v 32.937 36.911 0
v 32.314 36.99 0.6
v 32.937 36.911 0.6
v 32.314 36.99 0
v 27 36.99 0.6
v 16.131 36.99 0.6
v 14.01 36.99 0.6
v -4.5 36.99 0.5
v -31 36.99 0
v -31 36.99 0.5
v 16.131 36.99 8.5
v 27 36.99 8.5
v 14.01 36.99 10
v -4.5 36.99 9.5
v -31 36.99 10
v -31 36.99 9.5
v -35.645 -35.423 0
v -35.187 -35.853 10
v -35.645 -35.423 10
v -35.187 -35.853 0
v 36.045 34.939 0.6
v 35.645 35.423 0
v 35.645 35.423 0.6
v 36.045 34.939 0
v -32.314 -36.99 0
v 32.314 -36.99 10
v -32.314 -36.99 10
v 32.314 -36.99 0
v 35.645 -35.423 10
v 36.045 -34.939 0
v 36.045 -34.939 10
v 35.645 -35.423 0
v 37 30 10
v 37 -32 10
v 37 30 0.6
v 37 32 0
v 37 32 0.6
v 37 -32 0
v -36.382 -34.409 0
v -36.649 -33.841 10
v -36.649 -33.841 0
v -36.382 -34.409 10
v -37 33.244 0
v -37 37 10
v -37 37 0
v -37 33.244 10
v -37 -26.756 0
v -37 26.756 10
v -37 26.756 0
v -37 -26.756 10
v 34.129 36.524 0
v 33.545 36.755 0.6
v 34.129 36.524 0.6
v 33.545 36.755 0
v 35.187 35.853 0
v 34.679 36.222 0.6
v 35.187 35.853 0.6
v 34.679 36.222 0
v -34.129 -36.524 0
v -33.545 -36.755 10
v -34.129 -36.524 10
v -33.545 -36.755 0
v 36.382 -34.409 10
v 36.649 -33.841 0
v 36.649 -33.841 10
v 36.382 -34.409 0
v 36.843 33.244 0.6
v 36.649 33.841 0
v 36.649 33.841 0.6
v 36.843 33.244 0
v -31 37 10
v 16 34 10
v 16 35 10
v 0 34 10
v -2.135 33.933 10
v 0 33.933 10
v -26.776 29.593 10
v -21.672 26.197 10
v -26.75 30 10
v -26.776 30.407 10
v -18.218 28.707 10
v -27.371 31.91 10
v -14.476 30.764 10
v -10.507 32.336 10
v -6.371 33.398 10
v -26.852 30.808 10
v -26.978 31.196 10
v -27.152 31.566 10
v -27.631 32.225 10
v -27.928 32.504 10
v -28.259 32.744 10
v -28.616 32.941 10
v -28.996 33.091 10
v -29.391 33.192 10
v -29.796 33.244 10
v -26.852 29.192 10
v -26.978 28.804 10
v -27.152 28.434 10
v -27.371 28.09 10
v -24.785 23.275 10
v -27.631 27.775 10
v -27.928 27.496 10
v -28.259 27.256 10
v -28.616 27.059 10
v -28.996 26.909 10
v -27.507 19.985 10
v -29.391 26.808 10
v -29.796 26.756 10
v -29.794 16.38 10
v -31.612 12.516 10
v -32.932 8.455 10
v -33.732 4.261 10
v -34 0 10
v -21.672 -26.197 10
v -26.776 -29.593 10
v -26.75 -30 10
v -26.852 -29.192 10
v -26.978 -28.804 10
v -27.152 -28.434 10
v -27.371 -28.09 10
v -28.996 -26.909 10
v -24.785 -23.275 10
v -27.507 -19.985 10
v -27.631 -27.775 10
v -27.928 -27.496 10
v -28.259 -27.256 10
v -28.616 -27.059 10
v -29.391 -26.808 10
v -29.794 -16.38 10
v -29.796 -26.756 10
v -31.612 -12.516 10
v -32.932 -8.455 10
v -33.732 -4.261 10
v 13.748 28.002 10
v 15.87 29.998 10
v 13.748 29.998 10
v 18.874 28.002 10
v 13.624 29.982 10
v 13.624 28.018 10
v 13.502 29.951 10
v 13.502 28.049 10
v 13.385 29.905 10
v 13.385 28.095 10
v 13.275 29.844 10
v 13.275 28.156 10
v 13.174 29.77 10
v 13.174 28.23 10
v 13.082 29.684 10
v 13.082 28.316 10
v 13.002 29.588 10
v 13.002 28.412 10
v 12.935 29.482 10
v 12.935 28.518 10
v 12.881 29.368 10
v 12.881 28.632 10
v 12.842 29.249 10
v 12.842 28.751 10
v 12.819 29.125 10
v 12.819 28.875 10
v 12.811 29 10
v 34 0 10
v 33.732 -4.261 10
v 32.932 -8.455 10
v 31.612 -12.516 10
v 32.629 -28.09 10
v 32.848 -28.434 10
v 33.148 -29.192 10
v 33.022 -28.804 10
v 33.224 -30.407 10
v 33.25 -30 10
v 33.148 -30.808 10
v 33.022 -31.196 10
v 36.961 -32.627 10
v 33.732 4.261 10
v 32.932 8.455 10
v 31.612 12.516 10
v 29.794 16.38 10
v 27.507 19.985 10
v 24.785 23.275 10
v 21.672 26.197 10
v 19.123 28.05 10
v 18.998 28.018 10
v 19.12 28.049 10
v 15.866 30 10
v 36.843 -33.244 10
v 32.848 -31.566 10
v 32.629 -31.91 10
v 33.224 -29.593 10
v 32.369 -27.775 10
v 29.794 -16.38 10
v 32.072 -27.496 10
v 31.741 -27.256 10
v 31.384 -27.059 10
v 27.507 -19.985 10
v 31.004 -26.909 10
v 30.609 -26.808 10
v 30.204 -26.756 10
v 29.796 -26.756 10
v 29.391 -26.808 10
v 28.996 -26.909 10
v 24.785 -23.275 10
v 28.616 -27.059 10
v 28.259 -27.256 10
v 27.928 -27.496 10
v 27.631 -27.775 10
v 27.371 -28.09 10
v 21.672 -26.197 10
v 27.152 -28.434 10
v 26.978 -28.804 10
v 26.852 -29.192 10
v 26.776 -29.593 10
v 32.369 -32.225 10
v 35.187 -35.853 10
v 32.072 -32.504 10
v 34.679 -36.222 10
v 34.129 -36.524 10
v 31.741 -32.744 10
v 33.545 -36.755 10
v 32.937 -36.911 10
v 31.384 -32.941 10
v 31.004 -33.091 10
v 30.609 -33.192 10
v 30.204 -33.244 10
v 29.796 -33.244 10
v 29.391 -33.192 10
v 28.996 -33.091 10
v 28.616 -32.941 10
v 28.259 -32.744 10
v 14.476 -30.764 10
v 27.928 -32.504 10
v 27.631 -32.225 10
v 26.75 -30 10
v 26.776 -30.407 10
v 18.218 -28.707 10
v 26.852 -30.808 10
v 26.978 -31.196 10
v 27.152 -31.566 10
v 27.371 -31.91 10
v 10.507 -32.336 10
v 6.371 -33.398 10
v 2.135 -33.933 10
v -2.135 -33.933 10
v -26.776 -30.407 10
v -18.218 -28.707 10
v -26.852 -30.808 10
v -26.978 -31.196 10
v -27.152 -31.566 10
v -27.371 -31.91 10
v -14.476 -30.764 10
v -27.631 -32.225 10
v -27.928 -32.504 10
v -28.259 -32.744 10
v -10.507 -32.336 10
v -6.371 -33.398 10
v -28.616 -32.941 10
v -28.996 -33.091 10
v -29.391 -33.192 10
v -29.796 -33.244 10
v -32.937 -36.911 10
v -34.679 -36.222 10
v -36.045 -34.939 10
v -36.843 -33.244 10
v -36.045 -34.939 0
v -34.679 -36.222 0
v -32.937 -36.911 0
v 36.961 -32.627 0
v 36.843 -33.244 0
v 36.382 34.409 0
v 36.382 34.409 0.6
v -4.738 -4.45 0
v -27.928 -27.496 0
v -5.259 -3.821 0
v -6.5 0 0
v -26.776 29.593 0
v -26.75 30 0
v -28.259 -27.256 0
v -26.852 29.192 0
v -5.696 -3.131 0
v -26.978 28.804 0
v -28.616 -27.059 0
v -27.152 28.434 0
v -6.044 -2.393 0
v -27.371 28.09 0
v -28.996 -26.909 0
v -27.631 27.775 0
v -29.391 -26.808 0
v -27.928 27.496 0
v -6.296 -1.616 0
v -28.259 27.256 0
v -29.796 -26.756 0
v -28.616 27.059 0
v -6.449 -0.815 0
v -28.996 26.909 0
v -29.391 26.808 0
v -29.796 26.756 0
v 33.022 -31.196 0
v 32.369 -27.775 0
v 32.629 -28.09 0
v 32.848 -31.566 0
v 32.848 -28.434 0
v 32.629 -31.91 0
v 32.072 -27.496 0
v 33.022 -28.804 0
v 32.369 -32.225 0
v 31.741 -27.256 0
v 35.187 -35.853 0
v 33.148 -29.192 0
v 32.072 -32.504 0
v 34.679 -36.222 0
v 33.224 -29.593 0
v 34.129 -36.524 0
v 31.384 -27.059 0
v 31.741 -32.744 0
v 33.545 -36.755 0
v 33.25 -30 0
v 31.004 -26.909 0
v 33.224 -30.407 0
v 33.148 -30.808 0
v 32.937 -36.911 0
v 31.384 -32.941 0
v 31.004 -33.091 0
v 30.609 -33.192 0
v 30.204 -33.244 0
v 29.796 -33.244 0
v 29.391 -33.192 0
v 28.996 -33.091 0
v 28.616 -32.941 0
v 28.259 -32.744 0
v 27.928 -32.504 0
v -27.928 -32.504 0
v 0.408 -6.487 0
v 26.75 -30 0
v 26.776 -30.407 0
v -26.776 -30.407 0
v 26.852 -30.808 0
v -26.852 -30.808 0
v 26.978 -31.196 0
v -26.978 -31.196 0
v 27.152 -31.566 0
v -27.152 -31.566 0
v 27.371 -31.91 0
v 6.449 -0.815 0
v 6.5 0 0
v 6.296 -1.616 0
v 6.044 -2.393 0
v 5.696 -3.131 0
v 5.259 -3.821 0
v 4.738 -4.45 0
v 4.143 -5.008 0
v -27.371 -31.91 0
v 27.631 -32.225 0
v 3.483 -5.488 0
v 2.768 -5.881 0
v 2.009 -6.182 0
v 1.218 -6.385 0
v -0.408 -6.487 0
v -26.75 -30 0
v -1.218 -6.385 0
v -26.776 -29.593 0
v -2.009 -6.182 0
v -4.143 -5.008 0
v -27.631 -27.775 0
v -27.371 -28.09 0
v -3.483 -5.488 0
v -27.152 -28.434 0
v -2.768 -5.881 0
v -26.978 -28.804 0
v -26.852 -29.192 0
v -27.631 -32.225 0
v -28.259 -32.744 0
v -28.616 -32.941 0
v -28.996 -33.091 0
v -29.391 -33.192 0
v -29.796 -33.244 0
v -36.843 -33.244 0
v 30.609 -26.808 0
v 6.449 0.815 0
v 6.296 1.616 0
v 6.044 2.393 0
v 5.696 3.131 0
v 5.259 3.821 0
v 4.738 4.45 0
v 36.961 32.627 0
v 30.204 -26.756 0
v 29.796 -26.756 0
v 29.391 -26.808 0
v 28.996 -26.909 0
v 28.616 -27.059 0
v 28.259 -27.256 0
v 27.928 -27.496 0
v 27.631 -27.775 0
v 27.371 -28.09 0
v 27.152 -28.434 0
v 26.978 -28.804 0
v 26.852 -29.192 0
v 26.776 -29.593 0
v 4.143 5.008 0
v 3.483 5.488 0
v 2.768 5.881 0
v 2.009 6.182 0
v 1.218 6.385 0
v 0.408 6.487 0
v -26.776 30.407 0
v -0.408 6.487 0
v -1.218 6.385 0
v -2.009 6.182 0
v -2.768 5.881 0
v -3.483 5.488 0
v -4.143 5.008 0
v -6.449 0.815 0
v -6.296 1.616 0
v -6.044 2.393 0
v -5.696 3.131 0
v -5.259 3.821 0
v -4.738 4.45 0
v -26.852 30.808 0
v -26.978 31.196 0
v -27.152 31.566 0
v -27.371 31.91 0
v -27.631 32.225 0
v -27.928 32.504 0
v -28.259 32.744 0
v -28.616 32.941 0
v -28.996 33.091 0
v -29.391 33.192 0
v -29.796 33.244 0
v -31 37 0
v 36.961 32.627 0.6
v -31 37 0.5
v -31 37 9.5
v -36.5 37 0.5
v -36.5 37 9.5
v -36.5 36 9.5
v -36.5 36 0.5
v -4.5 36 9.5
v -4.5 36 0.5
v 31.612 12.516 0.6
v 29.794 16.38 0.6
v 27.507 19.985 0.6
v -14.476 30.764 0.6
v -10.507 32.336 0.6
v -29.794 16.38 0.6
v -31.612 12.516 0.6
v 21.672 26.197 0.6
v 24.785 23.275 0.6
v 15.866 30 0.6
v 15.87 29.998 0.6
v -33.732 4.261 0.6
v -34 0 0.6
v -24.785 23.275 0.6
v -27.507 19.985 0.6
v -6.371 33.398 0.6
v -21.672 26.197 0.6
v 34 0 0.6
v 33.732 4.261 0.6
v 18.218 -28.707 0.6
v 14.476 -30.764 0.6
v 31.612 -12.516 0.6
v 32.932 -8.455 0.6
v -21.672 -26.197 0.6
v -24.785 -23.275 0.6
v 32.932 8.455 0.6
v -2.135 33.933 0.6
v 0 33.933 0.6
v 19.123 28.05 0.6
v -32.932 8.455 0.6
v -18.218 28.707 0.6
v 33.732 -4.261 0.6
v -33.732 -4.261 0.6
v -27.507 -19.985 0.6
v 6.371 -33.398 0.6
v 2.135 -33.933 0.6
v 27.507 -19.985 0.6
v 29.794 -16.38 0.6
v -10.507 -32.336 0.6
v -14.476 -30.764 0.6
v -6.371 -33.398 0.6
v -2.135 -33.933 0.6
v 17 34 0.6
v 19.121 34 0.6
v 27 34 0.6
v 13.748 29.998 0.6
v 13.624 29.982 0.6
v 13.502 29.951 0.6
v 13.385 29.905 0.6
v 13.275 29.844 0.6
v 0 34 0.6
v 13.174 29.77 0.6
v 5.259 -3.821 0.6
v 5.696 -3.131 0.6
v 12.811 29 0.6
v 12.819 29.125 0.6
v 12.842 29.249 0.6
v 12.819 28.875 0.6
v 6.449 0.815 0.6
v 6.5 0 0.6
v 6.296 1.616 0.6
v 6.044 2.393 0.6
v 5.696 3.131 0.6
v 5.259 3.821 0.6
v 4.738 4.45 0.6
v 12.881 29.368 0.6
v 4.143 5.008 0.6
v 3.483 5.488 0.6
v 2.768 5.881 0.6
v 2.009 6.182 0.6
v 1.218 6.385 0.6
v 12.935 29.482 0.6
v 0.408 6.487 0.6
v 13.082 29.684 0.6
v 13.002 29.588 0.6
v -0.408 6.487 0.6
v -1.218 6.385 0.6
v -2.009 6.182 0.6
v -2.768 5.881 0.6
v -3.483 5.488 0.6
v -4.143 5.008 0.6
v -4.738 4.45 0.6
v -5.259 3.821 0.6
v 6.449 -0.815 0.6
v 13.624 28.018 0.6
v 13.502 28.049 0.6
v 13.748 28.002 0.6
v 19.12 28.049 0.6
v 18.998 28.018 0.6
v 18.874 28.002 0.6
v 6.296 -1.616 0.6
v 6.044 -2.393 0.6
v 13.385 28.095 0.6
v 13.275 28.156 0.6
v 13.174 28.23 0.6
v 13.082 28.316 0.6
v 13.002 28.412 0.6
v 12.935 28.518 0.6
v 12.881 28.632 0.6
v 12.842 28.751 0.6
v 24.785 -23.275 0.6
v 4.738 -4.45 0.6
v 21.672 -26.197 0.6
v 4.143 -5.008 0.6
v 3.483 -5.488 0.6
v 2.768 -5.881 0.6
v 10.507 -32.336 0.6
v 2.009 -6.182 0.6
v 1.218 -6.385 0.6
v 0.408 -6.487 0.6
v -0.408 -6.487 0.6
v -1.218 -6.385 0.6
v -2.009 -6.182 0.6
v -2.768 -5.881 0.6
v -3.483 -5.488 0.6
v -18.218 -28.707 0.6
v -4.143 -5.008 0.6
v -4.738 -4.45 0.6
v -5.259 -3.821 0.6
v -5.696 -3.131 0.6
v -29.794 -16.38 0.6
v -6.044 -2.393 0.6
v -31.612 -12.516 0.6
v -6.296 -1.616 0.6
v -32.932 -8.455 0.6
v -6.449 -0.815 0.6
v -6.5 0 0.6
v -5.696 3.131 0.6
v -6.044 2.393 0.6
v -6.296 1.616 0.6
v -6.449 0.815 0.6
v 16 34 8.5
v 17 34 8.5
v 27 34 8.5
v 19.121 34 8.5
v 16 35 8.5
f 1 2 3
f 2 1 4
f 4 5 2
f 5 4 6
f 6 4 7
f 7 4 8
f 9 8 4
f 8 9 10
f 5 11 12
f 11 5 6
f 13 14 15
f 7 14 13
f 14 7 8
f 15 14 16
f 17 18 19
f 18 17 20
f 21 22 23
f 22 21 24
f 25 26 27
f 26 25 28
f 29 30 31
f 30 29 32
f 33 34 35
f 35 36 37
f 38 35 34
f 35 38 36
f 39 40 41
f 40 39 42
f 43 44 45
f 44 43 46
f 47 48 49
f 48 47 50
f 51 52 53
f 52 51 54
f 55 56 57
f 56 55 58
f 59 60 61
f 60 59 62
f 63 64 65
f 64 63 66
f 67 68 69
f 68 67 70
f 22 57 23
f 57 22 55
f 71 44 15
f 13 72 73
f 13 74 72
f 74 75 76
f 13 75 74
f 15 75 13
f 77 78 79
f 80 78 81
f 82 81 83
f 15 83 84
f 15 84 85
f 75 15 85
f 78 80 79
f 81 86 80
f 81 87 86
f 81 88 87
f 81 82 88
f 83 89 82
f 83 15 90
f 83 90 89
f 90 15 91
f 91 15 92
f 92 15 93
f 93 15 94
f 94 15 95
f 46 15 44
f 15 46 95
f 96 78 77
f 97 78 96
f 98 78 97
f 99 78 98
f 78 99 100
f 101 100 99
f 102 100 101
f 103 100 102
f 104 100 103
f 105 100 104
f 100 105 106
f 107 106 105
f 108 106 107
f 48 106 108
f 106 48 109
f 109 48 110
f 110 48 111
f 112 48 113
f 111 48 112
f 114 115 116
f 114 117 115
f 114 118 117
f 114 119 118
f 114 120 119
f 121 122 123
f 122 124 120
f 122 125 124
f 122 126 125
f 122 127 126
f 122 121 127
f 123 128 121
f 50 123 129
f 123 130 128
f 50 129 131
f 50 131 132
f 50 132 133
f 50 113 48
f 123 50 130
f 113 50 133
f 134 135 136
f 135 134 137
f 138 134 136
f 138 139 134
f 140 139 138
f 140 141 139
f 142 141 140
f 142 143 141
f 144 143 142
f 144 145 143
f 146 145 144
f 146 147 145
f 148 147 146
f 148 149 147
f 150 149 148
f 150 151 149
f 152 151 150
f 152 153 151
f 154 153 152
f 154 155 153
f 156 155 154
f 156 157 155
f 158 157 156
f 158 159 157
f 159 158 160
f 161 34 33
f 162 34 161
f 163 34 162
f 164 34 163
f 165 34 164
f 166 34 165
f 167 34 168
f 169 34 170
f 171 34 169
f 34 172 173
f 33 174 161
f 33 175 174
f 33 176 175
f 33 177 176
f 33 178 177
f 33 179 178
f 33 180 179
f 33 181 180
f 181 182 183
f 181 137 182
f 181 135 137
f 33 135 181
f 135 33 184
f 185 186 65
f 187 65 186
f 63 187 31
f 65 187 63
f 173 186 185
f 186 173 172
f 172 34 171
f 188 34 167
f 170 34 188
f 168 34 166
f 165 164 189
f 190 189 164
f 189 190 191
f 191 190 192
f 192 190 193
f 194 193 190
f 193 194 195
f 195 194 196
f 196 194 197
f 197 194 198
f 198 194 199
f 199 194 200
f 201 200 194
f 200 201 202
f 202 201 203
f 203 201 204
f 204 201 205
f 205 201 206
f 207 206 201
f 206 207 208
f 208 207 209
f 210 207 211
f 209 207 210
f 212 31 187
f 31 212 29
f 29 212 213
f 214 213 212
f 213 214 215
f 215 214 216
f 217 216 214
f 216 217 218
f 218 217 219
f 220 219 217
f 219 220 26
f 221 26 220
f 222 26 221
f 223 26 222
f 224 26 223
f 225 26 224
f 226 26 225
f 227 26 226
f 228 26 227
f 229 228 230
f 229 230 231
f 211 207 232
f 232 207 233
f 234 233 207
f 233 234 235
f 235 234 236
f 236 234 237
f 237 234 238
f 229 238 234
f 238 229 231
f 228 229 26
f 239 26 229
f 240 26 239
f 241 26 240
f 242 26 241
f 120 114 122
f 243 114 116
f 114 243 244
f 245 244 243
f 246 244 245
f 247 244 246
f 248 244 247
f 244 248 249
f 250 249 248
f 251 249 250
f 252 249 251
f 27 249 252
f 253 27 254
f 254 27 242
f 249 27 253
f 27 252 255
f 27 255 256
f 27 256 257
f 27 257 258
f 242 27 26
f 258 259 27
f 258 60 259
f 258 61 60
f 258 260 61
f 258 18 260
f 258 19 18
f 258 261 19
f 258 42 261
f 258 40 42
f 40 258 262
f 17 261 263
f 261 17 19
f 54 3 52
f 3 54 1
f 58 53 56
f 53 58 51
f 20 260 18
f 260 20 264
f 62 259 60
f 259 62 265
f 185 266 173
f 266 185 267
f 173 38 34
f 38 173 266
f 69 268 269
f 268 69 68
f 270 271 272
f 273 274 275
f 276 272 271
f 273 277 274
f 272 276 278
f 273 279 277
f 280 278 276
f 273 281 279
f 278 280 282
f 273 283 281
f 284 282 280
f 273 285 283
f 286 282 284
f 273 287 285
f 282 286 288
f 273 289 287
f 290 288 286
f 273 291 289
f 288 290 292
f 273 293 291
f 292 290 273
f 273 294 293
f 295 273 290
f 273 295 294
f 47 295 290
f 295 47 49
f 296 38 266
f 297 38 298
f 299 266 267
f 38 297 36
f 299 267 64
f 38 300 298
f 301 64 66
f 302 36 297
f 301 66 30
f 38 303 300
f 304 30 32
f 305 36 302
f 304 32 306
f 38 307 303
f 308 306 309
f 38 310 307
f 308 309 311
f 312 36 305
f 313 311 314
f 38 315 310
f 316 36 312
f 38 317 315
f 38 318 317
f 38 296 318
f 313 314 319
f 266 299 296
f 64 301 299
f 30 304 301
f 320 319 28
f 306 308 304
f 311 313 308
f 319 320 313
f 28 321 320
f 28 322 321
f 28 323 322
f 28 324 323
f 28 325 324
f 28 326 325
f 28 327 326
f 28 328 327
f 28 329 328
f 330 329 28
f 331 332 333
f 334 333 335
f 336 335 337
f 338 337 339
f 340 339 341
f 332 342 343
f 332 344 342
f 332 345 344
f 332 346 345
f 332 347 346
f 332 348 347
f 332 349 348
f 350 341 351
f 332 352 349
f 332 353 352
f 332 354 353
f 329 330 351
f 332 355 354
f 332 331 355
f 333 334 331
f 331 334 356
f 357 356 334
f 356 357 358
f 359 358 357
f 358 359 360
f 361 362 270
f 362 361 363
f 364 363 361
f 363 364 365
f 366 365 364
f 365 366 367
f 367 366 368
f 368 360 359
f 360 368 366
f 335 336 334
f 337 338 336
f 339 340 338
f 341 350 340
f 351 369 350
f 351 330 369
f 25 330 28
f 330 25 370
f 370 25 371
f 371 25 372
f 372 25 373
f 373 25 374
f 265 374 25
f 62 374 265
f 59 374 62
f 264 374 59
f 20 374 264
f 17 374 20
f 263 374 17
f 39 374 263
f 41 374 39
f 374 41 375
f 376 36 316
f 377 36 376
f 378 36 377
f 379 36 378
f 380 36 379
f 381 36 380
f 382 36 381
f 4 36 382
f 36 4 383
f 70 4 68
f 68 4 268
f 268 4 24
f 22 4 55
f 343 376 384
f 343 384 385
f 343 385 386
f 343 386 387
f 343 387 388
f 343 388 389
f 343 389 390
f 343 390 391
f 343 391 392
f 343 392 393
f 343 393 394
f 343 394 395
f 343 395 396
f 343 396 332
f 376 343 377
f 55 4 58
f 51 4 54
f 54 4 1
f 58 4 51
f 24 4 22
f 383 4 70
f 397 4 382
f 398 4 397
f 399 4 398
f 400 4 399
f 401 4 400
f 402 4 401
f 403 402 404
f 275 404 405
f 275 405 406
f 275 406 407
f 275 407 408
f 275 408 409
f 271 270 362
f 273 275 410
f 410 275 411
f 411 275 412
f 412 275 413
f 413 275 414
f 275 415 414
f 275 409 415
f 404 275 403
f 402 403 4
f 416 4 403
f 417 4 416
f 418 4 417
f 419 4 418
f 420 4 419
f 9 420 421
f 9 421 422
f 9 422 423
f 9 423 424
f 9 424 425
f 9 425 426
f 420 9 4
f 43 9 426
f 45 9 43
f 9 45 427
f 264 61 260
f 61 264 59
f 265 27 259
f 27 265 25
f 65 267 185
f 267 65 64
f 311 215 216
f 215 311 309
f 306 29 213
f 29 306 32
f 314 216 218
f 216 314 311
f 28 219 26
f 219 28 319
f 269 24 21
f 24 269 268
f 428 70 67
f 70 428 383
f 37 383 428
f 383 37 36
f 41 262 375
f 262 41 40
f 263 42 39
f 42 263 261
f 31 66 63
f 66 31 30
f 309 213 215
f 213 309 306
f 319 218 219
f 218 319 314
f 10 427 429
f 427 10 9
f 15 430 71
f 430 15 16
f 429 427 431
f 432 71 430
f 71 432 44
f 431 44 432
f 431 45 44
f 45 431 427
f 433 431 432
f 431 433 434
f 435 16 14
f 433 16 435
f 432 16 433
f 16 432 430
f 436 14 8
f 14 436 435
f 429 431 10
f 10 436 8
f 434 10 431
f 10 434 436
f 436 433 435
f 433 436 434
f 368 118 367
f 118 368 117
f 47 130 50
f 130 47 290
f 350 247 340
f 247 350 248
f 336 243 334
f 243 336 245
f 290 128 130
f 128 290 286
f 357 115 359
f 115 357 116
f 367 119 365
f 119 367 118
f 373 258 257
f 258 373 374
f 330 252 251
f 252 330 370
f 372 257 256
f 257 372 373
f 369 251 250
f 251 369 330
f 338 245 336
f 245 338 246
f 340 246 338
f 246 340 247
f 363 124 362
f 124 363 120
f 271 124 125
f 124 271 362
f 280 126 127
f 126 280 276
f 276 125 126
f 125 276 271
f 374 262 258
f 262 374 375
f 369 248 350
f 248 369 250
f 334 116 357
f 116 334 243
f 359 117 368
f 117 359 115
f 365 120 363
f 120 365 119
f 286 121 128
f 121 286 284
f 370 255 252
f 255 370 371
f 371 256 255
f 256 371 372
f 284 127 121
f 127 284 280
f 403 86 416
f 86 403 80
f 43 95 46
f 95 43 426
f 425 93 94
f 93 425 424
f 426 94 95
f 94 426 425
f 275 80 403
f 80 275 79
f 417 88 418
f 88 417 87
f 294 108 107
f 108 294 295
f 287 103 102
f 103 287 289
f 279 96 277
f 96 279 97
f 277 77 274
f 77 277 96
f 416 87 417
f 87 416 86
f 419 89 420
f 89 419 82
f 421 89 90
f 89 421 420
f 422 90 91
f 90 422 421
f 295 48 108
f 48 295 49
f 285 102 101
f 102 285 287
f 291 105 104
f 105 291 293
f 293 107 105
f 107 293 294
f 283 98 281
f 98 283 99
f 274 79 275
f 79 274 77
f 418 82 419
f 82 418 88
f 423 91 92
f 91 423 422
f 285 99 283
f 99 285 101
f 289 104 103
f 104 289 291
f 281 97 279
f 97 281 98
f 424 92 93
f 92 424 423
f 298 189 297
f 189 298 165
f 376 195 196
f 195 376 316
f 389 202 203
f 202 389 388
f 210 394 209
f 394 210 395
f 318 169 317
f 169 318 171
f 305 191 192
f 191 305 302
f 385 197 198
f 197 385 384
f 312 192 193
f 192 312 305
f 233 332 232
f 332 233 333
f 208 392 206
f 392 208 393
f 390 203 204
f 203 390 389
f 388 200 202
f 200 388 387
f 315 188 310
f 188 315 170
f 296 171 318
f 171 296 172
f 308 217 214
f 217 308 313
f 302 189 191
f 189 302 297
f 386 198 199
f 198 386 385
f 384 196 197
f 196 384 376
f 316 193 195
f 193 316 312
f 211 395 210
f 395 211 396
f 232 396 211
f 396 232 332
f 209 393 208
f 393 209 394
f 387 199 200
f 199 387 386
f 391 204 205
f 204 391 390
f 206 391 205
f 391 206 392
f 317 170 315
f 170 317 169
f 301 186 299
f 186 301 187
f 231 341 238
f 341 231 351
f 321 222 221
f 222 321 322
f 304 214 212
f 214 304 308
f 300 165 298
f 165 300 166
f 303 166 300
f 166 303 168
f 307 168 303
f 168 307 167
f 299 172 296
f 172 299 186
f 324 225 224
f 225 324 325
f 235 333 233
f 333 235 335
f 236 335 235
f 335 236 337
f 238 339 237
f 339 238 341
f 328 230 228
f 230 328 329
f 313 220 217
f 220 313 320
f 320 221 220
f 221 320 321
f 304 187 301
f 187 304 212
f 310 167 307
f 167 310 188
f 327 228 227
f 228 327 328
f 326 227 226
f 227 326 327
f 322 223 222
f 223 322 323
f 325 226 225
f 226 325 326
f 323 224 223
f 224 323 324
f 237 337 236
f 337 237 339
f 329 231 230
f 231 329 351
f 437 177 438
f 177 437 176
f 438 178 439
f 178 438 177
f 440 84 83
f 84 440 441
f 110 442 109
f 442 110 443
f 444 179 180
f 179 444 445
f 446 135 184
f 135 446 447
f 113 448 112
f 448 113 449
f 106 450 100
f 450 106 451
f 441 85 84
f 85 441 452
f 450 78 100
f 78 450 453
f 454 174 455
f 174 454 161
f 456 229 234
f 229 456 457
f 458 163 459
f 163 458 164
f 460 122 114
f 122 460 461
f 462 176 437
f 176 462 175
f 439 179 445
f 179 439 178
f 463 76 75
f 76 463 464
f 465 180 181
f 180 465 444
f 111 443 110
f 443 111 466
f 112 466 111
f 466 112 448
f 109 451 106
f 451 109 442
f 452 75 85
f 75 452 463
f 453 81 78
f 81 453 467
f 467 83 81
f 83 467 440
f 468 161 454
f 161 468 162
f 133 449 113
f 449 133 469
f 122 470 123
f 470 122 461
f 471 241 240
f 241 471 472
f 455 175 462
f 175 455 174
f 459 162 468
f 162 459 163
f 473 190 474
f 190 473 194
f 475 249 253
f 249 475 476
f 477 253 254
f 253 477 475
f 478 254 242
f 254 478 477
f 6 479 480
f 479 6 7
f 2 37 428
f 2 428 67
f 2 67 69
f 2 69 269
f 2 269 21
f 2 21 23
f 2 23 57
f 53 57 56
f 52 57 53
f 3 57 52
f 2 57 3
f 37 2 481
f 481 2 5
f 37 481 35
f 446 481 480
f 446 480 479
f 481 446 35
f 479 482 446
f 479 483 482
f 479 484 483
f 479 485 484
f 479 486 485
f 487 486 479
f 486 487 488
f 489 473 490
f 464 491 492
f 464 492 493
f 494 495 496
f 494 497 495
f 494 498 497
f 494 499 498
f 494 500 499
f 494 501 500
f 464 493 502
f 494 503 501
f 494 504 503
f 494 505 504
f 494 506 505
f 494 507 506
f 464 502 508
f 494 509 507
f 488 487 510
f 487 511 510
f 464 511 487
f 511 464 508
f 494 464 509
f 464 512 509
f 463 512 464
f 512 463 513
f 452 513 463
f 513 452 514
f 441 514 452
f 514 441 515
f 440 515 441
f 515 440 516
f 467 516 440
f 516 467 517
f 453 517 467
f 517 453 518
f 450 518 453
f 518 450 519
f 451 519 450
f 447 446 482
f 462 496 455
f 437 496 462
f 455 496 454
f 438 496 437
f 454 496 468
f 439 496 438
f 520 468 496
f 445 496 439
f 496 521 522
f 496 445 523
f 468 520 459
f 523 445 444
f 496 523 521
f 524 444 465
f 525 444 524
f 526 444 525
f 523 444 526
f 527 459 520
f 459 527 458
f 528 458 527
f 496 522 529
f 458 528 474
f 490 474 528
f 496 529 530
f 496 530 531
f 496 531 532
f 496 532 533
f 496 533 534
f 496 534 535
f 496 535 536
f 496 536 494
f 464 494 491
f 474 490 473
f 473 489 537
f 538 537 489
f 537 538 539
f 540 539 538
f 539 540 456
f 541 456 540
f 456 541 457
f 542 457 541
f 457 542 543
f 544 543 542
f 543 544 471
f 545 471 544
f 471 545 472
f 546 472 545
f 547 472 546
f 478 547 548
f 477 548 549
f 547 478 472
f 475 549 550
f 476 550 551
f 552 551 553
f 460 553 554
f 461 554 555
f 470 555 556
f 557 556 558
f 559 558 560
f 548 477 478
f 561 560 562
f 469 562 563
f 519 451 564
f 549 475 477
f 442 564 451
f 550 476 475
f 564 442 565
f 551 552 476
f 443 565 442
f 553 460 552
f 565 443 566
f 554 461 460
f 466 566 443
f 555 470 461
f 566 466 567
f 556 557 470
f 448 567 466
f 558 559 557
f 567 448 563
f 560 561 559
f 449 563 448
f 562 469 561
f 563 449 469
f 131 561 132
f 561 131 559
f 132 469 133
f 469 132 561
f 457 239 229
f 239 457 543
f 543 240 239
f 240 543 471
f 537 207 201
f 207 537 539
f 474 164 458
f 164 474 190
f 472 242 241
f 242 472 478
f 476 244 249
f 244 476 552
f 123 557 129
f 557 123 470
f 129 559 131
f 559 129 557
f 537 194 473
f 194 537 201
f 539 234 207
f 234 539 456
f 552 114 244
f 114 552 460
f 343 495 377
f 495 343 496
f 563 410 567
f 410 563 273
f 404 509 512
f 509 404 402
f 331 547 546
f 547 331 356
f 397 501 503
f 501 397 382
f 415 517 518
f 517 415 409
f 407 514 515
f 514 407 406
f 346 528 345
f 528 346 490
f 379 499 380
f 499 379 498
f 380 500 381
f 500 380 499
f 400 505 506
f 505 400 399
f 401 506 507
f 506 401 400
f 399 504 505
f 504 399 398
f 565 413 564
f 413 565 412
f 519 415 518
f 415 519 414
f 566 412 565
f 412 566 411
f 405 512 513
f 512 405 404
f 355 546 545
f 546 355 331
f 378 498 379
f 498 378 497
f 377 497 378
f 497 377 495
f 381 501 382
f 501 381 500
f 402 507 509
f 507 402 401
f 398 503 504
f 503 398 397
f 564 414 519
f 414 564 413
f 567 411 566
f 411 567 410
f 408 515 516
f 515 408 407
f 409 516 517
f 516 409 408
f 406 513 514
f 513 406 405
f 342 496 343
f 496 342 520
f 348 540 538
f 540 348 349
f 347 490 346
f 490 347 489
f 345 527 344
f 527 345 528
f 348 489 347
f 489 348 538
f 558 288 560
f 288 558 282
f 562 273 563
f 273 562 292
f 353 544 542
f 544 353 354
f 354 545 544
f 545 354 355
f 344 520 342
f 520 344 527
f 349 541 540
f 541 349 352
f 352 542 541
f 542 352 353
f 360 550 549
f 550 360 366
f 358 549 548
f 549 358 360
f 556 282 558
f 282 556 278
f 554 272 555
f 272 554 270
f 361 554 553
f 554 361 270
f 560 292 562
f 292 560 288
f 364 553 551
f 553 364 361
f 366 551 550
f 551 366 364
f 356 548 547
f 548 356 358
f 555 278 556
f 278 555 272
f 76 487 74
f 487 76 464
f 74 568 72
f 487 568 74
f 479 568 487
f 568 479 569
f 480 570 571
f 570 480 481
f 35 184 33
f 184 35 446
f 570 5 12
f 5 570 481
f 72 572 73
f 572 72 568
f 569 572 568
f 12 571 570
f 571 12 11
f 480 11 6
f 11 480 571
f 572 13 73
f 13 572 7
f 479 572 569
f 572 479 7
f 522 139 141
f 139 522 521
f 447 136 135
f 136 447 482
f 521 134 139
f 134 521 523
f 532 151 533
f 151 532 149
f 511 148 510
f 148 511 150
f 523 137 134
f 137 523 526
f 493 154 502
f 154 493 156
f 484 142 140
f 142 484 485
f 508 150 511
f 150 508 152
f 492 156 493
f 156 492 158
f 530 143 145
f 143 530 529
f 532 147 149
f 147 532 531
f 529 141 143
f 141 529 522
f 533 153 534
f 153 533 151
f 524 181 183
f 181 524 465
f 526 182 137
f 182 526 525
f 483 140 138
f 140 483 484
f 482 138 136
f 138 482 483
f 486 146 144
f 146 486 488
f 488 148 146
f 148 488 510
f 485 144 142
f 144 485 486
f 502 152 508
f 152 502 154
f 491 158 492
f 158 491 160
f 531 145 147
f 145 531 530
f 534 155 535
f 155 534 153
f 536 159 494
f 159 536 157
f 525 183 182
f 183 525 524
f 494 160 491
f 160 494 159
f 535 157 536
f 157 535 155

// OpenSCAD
$fn = 50;


union() {
	difference() {
		union() {
			translate(v = [0, 0, 0]) {
				rotate(a = [0, 0, 0]) {
					hull() {
						translate(v = [-32.0000000000, 32.0000000000, 0]) {
							rotate(a = [0, 0, 0]) {
								translate(v = [0, 0, 0]) {
									rotate(a = [0, 0, 0]) {
										cylinder(h = 10, r = 5);
									}
								}
							}
						}
						translate(v = [32.0000000000, 32.0000000000, 0]) {
							rotate(a = [0, 0, 0]) {
								translate(v = [0, 0, 0]) {
									rotate(a = [0, 0, 0]) {
										cylinder(h = 10, r = 5);
									}
								}
							}
						}
						translate(v = [-32.0000000000, -32.0000000000, 0]) {
							rotate(a = [0, 0, 0]) {
								translate(v = [0, 0, 0]) {
									rotate(a = [0, 0, 0]) {
										cylinder(h = 10, r = 5);
									}
								}
							}
						}
						translate(v = [32.0000000000, -32.0000000000, 0]) {
							rotate(a = [0, 0, 0]) {
								translate(v = [0, 0, 0]) {
									rotate(a = [0, 0, 0]) {
										cylinder(h = 10, r = 5);
									}
								}
							}
						}
					}
				}
			}
			translate(v = [-37.0000000000, 31.0000000000, 0]) {
				rotate(a = [0, 0, 0]) {
					cube(size = [6, 6, 10]);
				}
			}
		}
		union() {
			#translate(v = [-36.5000000000, 36.0000000000, 0.5000000000]) {
				rotate(a = [0, 0, 0]) {
					cube(size = [32, 1, 9.0000000000]);
				}
			}
			translate(v = [-37.5000000000, -30.0000000000, -125]) {
				rotate(a = [0, 0, 0]) {
					hull() {
						translate(v = [7.5000000000, 0, 0]) {
							rotate(a = [0, 0, 0]) {
								translate(v = [0, 0, 0]) {
									rotate(a = [0, 0, 0]) {
										cylinder(h = 250, r = 3.2500000000);
									}
								}
							}
						}
						translate(v = [-7.5000000000, 0, 0]) {
							rotate(a = [0, 0, 0]) {
								translate(v = [0, 0, 0]) {
									rotate(a = [0, 0, 0]) {
										cylinder(h = 250, r = 3.2500000000);
									}
								}
							}
						}
					}
				}
			}
			translate(v = [-37.5000000000, 30.0000000000, -125]) {
				rotate(a = [0, 0, 0]) {
					hull() {
						translate(v = [7.5000000000, 0, 0]) {
							rotate(a = [0, 0, 0]) {
								translate(v = [0, 0, 0]) {
									rotate(a = [0, 0, 0]) {
										cylinder(h = 250, r = 3.2500000000);
									}
								}
							}
						}
						translate(v = [-7.5000000000, 0, 0]) {
							rotate(a = [0, 0, 0]) {
								translate(v = [0, 0, 0]) {
									rotate(a = [0, 0, 0]) {
										cylinder(h = 250, r = 3.2500000000);
									}
								}
							}
						}
					}
				}
			}
			translate(v = [30.0000000000, -30.0000000000, -125.0000000000]) {
				rotate(a = [0, 0, 0]) {
					cylinder(h = 250, r = 3.2500000000);
				}
			}
			translate(v = [0, 0, 0.6000000000]) {
				rotate(a = [0, 0, 0]) {
					cylinder(h = 12.4000000000, r = 34.0000000000);
				}
			}
			translate(v = [0, 0, -5.0000000000]) {
				rotate(a = [0, 0, 0]) {
					cylinder(h = 10, r = 6.5000000000);
				}
			}
			translate(v = [0.0000000000, 30.0000000000, 0.6000000000]) {
				rotate(a = [0, 0, 0]) {
					cube(size = [37.0000000000, 4, 12.4000000000]);
				}
			}
			translate(v = [27.0000000000, 30.0000000000, 0.6000000000]) {
				rotate(a = [0, 0, 0]) {
					cube(size = [10, 7, 12.4000000000]);
				}
			}
			translate(v = [16.0000000000, 30.0000000000, 8.5000000000]) {
				rotate(a = [0, 0, 0]) {
					cube(size = [21, 7, 1.5000000000]);
				}
			}
			translate(v = [13.2500000000, 37.7500000000, 0.6000000000]) {
				rotate(a = [0, 0, -45]) {
					cube(size = [7.5000000000, 1.5000000000, 12.4000000000]);
				}
			}
			translate(v = [7.0610000000, 28.0000000000, 0.6000000000]) {
				rotate(a = [0, 0, 0]) {
					cube(size = [7.5000000000, 2, 9.4000000000]);
				}
			}
		}
	}
	union() {
		translate(v = [16.3110000000, 29.0000000000, 0]) {
			rotate(a = [0, 0, 0]) {
				hull() {
					translate(v = [2.5000000000, 0, 0]) {
						rotate(a = [0, 0, 0]) {
							#translate(v = [0, 0, 0]) {
								rotate(a = [0, 0, 0]) {
									cylinder(h = 10, r = 1.0000000000);
								}
							}
						}
					}
					translate(v = [-2.5000000000, 0, 0]) {
						rotate(a = [0, 0, 0]) {
							#translate(v = [0, 0, 0]) {
								rotate(a = [0, 0, 0]) {
									cylinder(h = 10, r = 1.0000000000);
								}
							}
						}
					}
				}
			}
		}
	}
}
